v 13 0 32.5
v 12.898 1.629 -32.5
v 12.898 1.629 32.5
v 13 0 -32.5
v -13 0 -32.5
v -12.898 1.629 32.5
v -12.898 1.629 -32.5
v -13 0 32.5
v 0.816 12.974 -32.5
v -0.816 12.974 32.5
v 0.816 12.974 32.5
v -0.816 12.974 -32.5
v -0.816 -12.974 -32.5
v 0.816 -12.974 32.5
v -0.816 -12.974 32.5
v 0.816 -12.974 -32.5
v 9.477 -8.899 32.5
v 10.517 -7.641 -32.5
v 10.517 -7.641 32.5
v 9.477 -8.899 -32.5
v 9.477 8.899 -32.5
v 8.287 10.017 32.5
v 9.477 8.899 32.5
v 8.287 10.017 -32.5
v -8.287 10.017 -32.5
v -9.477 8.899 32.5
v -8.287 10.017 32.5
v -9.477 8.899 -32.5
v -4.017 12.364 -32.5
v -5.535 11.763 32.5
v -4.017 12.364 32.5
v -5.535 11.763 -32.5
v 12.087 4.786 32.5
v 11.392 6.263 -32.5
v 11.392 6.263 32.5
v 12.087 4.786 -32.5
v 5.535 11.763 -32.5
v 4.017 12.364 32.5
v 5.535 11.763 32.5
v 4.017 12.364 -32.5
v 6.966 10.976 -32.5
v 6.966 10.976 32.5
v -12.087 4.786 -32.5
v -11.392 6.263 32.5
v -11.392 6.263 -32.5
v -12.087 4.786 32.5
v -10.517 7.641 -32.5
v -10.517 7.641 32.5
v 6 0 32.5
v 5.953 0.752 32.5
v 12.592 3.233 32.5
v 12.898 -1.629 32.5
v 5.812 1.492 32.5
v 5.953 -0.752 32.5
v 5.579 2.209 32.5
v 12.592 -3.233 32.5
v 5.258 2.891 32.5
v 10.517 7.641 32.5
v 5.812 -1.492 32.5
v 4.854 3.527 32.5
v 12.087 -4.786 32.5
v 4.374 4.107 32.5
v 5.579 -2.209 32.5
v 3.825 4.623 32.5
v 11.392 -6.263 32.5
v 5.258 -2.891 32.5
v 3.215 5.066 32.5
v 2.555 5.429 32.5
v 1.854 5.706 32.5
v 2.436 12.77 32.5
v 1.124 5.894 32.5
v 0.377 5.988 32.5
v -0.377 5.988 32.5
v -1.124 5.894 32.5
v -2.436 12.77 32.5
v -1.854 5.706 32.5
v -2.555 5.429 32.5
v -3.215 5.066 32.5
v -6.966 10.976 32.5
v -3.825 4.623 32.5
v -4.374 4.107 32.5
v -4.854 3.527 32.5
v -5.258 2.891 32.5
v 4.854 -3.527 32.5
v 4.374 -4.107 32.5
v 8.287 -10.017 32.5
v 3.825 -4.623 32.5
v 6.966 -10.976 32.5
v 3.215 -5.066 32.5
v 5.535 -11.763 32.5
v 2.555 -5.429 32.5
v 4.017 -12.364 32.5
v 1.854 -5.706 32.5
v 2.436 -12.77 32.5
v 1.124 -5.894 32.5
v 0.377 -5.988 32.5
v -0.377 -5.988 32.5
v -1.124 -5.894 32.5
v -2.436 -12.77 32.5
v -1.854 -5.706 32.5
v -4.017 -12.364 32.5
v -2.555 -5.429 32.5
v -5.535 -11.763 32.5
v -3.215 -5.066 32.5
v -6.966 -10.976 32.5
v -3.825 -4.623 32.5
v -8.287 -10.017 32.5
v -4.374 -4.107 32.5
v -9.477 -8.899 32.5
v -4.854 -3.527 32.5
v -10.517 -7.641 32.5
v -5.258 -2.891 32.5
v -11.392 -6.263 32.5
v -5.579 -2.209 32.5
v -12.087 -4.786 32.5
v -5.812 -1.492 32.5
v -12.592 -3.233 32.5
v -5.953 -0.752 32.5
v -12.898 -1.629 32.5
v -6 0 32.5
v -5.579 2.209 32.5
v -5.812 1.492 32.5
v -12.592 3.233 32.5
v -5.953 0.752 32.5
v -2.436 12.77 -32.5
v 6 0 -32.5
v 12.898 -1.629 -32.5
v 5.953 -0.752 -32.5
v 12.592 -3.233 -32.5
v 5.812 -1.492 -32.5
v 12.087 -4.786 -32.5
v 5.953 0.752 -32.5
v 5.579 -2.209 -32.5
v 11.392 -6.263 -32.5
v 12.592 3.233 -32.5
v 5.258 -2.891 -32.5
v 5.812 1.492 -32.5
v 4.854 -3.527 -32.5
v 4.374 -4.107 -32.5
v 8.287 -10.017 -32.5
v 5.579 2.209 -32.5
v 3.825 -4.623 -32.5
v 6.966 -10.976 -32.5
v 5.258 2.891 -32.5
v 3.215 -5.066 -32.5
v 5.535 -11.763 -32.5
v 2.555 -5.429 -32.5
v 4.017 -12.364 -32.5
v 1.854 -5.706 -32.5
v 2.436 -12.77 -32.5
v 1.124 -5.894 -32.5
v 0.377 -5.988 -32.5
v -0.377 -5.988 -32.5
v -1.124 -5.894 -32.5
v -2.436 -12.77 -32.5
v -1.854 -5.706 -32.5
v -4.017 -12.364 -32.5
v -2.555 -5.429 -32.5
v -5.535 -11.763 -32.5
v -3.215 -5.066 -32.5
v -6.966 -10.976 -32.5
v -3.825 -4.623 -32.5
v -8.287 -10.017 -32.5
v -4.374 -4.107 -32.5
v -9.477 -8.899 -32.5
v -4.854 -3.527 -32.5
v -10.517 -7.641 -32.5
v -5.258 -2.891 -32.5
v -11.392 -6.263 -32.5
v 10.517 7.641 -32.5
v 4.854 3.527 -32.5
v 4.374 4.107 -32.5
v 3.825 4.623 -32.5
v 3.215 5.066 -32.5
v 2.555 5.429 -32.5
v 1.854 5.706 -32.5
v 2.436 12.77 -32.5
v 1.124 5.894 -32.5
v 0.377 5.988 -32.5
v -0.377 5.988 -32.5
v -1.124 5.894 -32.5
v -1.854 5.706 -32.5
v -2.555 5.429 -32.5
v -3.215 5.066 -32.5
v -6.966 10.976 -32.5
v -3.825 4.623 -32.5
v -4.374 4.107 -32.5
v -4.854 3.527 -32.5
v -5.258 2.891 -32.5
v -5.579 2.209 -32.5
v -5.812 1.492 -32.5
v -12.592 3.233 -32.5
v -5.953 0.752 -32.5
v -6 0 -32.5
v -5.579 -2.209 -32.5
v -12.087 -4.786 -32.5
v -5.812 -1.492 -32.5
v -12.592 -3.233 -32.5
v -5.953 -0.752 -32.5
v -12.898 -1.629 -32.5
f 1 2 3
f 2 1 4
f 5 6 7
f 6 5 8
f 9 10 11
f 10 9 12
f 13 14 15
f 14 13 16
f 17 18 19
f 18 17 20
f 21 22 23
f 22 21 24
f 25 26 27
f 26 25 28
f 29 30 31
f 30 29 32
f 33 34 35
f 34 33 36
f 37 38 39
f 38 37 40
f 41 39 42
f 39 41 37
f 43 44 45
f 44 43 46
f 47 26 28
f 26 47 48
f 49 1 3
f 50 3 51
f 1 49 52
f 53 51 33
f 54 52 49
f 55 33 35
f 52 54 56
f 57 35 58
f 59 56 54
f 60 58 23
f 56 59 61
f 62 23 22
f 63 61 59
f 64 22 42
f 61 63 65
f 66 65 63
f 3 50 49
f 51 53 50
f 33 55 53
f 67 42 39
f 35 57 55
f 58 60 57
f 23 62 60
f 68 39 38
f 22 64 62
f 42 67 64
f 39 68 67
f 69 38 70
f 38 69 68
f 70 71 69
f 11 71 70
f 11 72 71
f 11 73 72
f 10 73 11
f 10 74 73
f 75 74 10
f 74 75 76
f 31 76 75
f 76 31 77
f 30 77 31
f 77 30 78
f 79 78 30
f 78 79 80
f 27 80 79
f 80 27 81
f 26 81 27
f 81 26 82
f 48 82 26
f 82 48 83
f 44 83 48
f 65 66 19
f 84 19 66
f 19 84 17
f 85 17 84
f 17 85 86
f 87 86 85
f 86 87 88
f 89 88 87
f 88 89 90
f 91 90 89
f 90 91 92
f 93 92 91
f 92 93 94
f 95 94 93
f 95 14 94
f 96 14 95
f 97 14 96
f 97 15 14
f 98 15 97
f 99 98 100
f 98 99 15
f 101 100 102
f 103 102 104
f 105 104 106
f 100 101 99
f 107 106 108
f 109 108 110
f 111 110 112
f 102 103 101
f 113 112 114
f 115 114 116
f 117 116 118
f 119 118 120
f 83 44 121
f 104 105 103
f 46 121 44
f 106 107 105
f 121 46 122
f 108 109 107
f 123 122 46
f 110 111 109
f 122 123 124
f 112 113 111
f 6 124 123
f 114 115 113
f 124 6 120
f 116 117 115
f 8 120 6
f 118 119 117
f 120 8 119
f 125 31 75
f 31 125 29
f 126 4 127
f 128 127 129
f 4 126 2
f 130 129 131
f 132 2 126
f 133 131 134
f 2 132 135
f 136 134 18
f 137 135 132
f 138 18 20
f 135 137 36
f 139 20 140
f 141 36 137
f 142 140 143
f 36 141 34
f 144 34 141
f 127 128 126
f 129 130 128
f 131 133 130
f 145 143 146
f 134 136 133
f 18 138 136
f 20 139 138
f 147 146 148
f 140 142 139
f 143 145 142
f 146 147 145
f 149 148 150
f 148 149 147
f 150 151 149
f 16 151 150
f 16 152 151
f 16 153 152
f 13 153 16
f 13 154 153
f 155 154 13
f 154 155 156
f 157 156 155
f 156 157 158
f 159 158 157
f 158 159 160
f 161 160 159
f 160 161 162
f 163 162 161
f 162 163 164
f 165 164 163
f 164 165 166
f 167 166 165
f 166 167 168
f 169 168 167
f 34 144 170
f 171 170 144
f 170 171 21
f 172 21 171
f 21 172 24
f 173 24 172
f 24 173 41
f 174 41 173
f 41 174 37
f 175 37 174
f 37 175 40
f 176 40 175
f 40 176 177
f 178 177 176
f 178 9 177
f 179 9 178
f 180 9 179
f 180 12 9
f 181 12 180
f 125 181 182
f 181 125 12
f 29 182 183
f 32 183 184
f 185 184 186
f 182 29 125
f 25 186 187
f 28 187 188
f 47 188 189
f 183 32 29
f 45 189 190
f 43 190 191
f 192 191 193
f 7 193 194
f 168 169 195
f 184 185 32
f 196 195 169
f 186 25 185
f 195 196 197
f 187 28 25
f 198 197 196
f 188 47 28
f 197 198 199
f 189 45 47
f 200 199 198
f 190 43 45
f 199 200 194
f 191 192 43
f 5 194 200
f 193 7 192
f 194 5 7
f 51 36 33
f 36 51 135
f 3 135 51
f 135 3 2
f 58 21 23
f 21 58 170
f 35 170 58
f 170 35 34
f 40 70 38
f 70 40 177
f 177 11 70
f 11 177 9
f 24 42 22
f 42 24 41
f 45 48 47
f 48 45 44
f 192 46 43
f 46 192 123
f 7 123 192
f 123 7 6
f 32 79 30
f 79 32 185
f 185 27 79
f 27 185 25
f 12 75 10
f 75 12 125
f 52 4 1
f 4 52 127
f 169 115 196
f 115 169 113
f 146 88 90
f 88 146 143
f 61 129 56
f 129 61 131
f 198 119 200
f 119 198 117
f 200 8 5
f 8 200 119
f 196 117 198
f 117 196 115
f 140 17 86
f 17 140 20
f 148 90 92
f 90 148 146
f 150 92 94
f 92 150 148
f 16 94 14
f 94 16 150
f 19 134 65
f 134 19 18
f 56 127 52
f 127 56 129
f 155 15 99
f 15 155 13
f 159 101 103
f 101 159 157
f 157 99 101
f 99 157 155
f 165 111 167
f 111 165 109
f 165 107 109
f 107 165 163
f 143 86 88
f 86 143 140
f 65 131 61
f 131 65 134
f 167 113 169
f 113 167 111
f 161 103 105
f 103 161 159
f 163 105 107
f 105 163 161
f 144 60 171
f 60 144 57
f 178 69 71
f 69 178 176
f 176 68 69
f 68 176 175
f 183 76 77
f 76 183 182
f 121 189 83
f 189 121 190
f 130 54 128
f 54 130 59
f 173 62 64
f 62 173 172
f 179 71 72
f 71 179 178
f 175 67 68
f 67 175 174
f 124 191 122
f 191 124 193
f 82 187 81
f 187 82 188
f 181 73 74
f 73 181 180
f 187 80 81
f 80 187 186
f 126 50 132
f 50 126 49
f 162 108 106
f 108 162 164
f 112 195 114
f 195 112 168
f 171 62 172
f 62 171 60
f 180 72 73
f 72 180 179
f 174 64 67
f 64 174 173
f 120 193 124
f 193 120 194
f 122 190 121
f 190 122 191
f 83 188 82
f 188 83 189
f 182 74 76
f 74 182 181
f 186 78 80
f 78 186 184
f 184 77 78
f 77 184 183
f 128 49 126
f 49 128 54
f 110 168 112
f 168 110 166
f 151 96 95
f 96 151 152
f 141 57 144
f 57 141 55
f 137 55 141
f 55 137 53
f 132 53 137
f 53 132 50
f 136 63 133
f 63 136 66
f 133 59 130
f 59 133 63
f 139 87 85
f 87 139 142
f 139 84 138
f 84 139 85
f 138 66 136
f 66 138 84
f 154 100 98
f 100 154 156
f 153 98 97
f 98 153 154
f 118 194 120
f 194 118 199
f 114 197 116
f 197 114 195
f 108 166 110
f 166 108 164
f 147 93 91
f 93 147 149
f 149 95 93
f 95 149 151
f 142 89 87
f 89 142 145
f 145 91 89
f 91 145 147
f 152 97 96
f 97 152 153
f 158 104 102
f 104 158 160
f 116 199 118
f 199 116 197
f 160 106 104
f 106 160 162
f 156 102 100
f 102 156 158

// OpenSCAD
$fn = 50;


difference() {
	union() {
		translate(v = [0, 0, -32.5000000000]) {
			cylinder(h = 65, r = 13.0000000000);
		}
	}
	union() {
		translate(v = [0, 0, -100.0000000000]) {
			cylinder(h = 200, r = 6);
		}
	}
}
